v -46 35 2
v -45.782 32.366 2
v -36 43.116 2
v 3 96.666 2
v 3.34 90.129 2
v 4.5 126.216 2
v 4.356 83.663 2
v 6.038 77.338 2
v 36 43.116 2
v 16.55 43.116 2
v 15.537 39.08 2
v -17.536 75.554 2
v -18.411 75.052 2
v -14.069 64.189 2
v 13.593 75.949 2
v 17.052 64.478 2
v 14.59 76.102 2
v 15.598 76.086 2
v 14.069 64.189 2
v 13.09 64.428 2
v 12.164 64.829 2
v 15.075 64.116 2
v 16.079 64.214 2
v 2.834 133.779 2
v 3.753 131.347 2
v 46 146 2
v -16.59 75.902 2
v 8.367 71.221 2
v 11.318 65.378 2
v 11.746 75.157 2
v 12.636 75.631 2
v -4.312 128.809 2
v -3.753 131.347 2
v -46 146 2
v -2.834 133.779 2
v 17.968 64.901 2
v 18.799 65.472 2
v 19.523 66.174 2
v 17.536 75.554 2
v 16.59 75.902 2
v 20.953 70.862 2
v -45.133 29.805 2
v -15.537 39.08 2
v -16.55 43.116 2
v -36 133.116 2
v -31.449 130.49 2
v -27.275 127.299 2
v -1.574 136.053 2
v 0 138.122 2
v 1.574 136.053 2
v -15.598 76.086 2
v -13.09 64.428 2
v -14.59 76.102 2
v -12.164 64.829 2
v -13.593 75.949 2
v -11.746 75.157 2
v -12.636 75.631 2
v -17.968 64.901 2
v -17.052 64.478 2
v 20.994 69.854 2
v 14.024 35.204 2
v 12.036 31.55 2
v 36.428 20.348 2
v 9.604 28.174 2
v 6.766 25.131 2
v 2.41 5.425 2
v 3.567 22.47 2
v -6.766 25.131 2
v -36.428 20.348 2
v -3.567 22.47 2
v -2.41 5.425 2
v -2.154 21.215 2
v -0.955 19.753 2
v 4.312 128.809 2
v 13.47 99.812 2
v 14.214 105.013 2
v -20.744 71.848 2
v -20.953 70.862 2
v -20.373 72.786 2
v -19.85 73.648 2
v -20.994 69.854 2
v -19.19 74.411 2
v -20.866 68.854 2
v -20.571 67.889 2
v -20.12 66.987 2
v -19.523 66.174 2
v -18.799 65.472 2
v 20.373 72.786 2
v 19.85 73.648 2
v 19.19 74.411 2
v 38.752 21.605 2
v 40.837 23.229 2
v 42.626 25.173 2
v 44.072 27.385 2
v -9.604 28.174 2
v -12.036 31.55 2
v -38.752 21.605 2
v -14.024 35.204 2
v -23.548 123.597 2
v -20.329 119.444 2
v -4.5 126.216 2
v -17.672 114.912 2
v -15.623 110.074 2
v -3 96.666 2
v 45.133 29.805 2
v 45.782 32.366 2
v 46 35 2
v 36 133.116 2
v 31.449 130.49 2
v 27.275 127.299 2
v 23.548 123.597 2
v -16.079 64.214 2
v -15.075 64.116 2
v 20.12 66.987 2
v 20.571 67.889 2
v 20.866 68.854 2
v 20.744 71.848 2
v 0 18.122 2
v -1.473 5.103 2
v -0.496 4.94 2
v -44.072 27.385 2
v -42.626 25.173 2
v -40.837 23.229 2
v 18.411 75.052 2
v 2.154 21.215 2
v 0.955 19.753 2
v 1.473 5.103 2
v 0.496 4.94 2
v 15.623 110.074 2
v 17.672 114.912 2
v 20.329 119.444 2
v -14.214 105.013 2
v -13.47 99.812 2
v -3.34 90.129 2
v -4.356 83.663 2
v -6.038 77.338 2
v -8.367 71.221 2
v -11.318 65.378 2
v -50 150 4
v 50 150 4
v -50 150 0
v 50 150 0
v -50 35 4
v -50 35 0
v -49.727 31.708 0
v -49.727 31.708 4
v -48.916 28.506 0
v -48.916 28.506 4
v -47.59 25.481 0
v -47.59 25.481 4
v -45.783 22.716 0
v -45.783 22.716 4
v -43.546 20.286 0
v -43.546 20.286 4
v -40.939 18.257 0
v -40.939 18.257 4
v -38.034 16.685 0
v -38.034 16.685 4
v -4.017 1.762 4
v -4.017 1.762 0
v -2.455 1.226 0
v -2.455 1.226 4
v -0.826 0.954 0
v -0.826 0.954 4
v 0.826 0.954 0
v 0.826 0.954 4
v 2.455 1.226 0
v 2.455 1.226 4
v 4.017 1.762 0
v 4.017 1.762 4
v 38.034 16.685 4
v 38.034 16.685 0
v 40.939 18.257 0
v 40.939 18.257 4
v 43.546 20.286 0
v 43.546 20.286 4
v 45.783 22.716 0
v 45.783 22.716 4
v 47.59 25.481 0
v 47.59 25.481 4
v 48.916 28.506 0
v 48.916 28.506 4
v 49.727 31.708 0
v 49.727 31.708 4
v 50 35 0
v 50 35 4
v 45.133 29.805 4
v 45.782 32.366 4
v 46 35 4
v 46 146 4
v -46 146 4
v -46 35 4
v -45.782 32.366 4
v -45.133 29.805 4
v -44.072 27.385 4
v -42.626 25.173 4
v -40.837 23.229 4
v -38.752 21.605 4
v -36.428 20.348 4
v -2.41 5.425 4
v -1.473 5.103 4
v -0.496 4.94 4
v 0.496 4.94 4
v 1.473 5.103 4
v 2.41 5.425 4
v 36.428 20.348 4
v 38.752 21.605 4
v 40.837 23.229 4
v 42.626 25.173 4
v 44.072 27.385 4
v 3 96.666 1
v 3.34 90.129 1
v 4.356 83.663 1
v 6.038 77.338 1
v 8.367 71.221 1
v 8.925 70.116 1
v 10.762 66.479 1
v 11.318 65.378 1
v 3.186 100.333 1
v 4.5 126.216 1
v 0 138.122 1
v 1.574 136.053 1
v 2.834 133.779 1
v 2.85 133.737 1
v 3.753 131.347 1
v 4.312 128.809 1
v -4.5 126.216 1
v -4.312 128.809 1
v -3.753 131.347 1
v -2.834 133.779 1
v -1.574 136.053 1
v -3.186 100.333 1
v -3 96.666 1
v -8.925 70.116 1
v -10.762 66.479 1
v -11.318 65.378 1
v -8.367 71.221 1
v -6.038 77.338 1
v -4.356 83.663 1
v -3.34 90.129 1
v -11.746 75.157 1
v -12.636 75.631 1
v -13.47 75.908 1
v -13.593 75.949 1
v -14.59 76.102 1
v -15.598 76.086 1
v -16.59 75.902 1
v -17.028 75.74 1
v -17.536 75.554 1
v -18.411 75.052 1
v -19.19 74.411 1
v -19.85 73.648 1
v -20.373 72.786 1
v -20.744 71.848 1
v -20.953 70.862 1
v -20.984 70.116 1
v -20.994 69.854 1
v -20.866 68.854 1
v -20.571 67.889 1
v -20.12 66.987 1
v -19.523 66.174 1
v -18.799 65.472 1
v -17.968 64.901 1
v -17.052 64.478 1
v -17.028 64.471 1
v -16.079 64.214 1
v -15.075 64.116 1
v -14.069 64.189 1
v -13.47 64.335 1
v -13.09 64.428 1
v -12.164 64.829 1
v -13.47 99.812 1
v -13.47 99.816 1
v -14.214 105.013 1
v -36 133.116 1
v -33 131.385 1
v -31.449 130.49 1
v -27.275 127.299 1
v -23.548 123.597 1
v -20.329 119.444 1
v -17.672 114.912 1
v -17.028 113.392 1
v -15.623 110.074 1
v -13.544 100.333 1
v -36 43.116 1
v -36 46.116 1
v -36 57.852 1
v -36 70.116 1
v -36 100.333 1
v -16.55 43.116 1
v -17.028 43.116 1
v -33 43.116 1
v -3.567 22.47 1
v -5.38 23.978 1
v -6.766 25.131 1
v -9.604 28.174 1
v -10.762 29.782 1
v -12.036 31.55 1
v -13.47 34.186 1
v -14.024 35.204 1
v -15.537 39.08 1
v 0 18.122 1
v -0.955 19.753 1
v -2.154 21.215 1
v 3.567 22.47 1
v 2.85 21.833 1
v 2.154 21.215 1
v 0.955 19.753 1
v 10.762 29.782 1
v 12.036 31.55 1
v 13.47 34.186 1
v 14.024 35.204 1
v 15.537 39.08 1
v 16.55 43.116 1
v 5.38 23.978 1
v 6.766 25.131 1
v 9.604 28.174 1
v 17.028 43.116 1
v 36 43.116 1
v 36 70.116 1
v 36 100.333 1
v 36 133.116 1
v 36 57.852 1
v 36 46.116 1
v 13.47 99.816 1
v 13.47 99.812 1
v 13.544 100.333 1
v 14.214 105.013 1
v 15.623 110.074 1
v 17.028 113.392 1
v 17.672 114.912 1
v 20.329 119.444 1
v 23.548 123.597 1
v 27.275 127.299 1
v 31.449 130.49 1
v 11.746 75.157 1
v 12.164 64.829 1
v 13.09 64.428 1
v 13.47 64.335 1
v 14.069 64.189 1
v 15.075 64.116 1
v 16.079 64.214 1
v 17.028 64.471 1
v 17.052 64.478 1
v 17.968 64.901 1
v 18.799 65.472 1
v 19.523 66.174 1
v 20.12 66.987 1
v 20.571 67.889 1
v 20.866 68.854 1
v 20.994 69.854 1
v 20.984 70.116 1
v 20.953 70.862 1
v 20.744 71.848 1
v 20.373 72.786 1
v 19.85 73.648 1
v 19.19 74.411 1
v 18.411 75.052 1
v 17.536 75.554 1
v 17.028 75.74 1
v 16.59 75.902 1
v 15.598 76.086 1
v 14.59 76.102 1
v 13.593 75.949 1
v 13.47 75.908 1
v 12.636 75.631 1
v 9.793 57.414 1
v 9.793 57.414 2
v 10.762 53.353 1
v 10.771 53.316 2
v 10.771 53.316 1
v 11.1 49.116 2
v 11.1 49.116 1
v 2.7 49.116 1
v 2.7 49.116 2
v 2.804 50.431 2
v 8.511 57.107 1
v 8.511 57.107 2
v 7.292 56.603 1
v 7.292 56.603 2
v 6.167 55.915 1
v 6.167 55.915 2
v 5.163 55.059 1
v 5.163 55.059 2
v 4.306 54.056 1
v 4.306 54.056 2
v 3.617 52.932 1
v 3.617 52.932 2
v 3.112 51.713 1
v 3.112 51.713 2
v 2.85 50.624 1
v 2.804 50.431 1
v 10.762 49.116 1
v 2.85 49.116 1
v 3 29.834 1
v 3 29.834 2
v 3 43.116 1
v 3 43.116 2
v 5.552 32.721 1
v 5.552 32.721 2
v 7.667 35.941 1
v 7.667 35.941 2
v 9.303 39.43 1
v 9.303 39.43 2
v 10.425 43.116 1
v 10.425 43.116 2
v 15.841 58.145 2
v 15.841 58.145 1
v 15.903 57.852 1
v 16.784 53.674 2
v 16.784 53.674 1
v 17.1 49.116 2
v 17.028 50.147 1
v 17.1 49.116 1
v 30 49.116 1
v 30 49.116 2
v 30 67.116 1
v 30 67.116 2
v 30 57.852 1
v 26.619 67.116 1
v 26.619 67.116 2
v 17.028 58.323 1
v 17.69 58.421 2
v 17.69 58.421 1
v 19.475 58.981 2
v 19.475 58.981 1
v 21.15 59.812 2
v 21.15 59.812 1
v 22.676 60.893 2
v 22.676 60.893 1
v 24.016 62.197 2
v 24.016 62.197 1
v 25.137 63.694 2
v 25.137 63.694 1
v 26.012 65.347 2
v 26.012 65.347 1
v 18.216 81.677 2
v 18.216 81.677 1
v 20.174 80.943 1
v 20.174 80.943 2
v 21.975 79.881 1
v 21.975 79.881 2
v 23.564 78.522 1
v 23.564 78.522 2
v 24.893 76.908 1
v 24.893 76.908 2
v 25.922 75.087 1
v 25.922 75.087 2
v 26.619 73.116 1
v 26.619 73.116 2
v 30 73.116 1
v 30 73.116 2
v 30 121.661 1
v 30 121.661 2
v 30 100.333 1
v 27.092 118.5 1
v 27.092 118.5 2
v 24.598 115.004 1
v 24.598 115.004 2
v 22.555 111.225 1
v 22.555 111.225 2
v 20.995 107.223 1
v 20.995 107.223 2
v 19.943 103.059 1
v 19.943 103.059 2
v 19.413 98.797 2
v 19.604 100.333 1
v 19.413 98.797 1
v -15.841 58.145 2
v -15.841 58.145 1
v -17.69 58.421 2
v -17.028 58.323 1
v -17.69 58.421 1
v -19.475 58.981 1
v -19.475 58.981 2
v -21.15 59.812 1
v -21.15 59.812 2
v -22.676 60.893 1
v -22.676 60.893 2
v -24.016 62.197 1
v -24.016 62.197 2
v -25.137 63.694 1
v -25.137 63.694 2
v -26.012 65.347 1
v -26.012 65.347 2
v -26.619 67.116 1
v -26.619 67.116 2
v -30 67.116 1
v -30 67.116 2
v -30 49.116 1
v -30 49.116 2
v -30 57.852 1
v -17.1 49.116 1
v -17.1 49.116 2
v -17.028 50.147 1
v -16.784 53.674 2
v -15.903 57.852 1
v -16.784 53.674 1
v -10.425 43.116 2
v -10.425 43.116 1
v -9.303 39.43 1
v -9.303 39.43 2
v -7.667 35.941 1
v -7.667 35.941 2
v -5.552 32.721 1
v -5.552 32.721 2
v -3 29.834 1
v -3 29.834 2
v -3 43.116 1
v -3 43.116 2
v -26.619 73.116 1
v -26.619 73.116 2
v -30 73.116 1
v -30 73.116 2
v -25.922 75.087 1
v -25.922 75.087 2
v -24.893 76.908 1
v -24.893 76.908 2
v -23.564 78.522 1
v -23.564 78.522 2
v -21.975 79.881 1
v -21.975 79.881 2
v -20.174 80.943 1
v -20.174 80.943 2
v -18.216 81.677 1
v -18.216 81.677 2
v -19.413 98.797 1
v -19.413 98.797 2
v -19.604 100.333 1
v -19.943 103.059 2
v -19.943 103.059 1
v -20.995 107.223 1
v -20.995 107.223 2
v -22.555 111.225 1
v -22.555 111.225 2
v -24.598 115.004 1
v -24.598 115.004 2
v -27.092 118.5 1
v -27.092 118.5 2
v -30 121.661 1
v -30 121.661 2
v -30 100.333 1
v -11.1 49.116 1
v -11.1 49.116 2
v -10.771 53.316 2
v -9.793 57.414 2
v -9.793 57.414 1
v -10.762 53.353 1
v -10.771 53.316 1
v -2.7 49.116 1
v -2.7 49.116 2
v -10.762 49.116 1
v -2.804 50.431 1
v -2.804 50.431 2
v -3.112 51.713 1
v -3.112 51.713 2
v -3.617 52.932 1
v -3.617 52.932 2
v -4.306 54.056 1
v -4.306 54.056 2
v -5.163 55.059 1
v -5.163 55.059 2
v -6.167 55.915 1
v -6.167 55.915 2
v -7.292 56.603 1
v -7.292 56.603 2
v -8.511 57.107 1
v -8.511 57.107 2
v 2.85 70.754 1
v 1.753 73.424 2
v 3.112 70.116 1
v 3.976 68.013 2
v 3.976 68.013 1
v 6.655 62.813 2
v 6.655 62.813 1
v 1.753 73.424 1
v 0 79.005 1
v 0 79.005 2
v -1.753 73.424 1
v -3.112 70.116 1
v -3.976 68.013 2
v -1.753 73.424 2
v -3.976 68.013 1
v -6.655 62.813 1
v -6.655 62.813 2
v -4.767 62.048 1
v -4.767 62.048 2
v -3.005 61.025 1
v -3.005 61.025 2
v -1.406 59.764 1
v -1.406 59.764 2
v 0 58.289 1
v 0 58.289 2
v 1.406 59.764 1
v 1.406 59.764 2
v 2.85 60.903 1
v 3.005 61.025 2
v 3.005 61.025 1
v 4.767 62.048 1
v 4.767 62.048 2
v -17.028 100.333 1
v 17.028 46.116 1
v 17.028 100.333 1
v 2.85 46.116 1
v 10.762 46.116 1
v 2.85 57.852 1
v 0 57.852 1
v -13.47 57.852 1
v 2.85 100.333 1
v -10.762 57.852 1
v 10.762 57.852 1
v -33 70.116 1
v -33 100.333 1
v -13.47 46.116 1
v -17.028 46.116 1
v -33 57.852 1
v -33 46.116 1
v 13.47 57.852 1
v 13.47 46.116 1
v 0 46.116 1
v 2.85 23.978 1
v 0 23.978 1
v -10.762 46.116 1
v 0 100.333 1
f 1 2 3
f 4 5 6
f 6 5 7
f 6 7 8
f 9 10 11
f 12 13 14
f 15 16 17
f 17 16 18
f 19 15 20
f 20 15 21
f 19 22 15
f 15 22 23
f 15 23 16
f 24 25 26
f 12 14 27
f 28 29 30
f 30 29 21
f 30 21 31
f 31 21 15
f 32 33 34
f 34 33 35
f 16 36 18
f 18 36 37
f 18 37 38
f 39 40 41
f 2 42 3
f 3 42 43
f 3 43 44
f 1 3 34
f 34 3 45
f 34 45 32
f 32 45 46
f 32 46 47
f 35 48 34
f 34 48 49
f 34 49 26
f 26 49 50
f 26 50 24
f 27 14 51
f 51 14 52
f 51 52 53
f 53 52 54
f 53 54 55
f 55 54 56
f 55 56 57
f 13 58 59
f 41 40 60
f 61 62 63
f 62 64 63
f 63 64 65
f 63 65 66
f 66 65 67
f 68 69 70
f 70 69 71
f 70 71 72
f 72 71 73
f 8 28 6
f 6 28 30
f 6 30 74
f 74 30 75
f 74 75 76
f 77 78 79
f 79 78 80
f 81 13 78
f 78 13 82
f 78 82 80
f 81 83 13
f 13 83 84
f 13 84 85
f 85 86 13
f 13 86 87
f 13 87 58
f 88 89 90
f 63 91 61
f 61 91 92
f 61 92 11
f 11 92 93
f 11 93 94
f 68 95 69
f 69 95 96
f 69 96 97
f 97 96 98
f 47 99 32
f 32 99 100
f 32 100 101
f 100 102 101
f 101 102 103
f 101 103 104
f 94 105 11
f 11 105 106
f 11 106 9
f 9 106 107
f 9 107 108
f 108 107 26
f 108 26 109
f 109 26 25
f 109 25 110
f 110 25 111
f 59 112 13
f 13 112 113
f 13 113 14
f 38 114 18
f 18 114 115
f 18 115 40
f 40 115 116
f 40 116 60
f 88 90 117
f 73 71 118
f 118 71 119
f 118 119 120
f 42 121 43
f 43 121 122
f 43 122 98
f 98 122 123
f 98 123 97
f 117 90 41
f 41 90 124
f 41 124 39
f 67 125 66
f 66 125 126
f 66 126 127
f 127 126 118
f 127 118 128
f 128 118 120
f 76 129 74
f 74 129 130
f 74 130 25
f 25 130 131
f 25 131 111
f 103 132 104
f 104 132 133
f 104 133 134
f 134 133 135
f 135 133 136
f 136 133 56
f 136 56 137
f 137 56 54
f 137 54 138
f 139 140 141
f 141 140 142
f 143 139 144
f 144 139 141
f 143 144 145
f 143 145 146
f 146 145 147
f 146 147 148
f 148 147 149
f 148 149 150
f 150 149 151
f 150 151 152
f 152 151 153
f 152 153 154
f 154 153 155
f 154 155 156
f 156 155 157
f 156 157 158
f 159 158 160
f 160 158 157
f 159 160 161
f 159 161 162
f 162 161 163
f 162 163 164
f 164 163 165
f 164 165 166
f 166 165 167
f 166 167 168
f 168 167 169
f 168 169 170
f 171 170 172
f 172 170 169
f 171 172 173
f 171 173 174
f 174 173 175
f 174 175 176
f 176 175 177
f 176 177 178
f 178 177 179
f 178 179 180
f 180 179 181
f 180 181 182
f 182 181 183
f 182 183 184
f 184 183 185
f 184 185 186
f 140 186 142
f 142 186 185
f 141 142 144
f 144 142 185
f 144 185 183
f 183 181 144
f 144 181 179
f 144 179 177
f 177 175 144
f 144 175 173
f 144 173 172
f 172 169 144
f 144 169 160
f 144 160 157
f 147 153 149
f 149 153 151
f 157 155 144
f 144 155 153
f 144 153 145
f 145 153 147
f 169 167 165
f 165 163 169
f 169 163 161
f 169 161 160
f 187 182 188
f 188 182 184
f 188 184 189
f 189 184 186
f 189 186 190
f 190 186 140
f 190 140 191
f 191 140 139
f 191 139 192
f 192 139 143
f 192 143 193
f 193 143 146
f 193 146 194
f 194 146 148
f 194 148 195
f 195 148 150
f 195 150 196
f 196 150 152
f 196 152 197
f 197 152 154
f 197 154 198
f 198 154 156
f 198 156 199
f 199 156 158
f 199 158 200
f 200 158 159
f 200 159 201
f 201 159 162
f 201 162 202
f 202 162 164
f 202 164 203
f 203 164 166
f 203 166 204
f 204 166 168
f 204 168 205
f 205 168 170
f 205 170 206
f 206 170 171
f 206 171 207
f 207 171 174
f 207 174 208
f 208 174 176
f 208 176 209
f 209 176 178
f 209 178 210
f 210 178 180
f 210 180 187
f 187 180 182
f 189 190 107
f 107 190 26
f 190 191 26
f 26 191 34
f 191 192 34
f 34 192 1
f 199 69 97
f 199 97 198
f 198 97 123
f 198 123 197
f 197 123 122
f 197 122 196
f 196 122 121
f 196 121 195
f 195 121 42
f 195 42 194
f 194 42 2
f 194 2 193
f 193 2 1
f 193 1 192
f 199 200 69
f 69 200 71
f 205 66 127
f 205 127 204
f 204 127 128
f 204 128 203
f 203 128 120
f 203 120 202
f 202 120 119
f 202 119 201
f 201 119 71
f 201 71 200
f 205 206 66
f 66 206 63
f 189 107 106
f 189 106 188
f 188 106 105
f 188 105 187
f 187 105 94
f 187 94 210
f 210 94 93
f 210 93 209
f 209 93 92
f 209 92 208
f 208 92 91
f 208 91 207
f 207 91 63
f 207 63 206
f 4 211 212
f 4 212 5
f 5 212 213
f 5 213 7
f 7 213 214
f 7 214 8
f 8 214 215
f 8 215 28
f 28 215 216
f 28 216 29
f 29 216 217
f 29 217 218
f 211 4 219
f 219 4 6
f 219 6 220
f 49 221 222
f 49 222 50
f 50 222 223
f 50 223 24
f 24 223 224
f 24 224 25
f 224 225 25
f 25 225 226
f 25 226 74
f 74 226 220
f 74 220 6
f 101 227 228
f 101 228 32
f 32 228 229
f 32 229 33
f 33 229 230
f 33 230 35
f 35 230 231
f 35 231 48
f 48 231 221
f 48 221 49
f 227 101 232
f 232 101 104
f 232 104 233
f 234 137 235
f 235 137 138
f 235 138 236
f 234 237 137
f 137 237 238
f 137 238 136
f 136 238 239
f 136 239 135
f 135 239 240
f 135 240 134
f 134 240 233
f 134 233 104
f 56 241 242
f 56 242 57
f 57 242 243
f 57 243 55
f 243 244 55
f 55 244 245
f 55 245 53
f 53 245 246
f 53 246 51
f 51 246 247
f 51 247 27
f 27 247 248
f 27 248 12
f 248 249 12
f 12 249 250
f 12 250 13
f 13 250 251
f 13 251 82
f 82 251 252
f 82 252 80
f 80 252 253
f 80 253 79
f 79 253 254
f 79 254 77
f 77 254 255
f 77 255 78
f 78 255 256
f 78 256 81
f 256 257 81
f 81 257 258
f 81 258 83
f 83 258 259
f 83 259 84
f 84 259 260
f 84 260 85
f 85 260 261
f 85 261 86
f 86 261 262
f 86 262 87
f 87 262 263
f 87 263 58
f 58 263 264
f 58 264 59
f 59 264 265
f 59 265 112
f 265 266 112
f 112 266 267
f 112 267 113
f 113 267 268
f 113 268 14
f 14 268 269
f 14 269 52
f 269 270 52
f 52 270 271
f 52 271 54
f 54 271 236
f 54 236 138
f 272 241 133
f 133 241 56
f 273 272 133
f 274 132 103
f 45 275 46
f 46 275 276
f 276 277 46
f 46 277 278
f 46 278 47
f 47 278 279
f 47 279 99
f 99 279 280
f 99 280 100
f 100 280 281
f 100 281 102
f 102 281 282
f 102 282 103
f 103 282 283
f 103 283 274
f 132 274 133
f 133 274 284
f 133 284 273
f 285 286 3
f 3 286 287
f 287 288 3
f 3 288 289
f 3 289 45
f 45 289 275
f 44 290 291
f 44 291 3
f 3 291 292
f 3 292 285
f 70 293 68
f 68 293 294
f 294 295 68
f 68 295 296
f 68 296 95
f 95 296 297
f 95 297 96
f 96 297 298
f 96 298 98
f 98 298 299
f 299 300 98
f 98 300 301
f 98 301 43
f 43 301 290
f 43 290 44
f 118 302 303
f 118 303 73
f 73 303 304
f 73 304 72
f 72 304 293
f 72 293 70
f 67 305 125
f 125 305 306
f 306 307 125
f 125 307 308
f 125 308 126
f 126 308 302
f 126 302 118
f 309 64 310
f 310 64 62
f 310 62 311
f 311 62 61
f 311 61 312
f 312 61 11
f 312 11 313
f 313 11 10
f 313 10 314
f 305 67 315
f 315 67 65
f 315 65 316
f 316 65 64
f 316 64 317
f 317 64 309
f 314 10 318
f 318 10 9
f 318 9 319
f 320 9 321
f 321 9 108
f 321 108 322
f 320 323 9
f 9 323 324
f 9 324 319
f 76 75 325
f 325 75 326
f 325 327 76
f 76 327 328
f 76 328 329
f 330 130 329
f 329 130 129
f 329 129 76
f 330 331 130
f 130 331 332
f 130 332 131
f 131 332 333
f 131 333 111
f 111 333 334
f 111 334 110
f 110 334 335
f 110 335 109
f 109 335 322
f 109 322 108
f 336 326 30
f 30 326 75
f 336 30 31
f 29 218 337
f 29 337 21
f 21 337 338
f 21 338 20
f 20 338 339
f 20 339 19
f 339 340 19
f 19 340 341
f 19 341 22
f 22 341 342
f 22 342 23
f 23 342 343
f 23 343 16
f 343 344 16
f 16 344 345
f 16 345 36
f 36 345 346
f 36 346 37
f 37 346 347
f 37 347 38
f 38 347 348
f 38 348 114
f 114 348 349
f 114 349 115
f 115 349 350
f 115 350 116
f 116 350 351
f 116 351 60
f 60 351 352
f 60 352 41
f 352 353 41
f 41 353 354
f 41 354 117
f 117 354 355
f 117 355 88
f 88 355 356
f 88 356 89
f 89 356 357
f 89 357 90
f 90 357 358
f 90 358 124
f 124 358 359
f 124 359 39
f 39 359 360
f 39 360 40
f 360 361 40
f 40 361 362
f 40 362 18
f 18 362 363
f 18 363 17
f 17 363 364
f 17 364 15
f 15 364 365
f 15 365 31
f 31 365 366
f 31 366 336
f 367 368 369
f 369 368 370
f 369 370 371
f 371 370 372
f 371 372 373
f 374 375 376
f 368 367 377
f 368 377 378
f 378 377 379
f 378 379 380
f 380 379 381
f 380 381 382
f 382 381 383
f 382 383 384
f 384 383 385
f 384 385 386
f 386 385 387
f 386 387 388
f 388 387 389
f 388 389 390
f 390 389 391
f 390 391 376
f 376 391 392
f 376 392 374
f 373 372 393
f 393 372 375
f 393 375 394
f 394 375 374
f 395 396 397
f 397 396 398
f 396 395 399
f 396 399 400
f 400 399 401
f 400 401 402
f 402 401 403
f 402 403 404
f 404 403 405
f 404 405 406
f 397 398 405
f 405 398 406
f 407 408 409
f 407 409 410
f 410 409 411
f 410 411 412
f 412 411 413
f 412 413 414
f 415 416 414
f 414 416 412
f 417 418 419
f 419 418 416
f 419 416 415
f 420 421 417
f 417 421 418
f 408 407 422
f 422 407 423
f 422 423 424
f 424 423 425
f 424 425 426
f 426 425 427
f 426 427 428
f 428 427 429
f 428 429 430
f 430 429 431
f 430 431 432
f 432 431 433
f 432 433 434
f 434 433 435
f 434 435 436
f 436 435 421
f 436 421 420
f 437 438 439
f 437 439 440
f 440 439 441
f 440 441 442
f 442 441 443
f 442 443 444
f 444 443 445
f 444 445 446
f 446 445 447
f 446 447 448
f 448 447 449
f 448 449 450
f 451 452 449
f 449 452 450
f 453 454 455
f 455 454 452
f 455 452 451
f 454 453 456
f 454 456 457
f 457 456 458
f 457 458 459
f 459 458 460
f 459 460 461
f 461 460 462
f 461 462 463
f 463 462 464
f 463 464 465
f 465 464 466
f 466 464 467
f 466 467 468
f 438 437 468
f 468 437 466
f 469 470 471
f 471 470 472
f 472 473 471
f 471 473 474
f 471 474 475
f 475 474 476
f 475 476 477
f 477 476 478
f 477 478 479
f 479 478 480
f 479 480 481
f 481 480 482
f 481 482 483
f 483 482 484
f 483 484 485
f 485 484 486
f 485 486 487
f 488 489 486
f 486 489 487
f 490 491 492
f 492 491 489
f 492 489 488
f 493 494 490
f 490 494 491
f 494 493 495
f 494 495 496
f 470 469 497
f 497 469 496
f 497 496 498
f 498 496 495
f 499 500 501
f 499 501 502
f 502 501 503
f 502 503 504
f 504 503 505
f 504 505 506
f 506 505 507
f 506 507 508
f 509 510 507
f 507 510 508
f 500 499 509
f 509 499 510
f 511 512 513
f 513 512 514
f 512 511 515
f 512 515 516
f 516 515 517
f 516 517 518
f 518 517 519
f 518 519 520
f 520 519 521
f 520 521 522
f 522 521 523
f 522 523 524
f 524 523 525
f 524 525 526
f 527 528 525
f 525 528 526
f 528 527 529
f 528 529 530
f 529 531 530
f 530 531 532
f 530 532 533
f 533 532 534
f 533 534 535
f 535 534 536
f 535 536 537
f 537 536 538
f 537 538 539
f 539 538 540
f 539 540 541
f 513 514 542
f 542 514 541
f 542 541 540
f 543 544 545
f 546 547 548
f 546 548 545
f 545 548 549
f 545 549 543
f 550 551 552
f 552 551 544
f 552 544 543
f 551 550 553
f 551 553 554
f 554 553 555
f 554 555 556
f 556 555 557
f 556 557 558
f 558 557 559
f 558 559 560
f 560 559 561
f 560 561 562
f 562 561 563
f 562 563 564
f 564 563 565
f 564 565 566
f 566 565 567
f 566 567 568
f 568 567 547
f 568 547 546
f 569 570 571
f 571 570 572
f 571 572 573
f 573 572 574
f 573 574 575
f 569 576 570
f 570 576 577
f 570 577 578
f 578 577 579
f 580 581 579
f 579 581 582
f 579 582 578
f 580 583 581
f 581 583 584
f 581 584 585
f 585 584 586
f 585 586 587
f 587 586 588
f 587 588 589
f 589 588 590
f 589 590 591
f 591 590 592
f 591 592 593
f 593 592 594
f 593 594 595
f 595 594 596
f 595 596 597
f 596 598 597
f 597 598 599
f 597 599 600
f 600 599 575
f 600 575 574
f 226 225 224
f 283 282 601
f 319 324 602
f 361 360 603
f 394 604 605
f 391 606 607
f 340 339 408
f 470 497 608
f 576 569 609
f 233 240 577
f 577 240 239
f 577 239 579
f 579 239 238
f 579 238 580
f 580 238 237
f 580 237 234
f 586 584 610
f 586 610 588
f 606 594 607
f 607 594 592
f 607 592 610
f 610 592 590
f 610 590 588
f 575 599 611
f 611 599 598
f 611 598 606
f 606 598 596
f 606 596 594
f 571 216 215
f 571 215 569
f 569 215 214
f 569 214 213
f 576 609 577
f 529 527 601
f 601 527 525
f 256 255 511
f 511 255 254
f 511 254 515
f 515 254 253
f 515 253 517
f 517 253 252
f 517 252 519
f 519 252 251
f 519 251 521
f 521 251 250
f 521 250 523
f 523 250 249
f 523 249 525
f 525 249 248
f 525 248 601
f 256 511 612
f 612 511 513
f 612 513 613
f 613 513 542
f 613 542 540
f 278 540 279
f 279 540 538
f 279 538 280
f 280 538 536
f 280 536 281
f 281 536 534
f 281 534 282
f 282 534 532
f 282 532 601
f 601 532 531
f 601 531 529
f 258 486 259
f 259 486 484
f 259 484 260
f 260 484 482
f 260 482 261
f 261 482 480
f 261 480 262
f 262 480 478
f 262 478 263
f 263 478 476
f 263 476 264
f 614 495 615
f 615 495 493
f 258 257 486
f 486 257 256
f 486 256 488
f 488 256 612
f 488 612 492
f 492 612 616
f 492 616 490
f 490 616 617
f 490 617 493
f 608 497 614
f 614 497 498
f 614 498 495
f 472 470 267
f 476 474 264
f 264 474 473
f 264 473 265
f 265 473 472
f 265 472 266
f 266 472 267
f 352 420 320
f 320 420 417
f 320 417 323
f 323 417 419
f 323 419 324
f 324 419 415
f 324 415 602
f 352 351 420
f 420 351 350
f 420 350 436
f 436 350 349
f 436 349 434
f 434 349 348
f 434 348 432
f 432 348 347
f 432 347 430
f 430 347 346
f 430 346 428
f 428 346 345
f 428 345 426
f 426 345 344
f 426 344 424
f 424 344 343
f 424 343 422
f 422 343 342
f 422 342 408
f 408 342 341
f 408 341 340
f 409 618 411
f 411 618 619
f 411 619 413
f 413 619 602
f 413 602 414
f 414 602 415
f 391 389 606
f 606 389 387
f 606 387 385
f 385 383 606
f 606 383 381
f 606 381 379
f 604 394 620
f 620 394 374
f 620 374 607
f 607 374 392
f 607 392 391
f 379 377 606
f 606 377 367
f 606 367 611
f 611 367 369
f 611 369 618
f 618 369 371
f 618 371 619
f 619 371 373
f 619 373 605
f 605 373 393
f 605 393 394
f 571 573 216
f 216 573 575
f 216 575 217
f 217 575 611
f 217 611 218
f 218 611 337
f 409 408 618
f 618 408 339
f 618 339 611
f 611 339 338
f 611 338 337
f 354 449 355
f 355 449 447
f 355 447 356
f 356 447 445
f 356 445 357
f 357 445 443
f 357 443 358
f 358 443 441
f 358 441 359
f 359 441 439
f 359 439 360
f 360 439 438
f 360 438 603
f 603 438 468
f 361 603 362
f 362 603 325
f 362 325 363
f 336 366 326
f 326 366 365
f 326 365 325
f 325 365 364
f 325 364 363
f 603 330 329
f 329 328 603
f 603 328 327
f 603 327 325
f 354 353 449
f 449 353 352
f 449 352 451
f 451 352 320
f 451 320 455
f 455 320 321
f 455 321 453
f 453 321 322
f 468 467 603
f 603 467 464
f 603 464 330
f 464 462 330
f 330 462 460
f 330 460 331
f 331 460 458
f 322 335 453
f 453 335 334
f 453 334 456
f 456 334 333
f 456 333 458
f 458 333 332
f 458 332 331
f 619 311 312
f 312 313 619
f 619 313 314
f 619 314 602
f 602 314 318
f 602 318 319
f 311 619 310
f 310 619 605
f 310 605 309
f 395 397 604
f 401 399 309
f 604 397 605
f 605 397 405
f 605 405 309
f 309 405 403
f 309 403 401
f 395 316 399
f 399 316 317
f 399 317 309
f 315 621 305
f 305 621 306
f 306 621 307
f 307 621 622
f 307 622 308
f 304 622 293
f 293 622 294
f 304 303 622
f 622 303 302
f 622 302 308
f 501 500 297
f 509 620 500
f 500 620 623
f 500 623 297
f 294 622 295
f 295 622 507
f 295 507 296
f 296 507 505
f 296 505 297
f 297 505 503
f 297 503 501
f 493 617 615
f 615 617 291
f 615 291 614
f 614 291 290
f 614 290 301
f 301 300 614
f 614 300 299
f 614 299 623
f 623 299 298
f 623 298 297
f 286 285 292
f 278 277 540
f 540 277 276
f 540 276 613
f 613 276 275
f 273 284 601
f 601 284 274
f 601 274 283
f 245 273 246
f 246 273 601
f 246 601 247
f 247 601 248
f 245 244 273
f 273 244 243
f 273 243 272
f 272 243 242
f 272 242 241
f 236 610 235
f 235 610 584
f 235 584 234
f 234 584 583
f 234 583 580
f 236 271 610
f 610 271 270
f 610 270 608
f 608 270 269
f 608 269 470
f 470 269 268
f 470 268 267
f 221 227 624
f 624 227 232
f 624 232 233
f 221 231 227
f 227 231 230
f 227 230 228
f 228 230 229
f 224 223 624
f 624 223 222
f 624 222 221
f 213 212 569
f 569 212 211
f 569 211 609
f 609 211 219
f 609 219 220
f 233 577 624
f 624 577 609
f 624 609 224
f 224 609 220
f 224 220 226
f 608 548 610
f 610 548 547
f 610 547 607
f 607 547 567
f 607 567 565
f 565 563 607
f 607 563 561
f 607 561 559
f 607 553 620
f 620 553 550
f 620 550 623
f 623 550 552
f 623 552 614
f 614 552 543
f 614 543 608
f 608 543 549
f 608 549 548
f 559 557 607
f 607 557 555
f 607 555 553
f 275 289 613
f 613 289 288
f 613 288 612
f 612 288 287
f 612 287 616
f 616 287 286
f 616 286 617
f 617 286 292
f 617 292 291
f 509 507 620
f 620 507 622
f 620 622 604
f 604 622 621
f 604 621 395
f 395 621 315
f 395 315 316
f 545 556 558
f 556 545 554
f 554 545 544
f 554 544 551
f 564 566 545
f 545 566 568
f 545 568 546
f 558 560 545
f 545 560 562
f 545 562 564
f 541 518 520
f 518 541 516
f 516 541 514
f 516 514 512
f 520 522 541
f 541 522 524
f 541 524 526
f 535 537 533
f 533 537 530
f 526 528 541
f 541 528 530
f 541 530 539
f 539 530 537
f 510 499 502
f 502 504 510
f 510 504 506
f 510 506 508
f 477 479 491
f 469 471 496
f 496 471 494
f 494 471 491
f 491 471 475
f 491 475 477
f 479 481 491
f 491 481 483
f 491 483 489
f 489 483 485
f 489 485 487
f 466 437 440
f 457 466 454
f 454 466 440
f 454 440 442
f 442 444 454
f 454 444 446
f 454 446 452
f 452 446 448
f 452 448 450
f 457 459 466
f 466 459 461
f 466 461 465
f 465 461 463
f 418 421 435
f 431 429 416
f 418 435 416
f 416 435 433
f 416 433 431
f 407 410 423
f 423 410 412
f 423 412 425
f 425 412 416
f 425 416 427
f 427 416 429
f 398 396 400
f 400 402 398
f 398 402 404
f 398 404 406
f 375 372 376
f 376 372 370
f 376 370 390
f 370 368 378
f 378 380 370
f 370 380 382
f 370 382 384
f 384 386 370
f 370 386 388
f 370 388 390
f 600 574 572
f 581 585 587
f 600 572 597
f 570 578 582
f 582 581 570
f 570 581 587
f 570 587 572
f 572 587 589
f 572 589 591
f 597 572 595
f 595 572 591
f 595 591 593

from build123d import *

# Parameters (mm, degrees)
EXTRUDE_1_DEPTH = 2
EXTRUDE_2_DEPTH = 2
OTHER_START     = 1
OTHER_1_DEPTH   = 1


# Read off the part's stored shape, not the designer's step: Полость1
with BuildPart() as part:
    # Эскиз1 → Бобышка-Вытянуть1 (new body)
    with BuildSketch(Plane.XY):
        with BuildLine():
            Line((-4.017219652, 1.762254744), (-38.034439304, 16.684766311))
            ThreePointArc((-38.034439304, 16.684766311), (-46.743488079, 24.061279464), (-50, 35))
            Line((-50, 35), (-50, 150))
            Line((-50, 150), (50, 150))
            Line((50, 150), (50, 35))
            ThreePointArc((50, 35), (46.743488079, 24.061279464), (38.034439304, 16.684766311))
            Line((38.034439304, 16.684766311), (4.017219652, 1.762254744))
            ThreePointArc((4.017219652, 1.762254744), (0, 0.919871589), (-4.017219652, 1.762254744))
        make_face()
    extrude(amount=EXTRUDE_1_DEPTH)

    # Эскиз2 → Бобышка-Вытянуть2 (add)
    with BuildSketch(Plane.XY.offset(2)):
        with BuildLine():
            Line((50, 150), (-50, 150))
            Line((-50, 150), (-50, 35))
            ThreePointArc((-50, 35), (-46.743488079, 24.061279464), (-38.034439304, 16.684766311))
            Line((-38.034439304, 16.684766311), (-4.017219652, 1.762254744))
            ThreePointArc((-4.017219652, 1.762254744), (0, 0.919871589), (4.017219652, 1.762254744))
            Line((4.017219652, 1.762254744), (38.034439304, 16.684766311))
            ThreePointArc((38.034439304, 16.684766311), (46.743488079, 24.061279464), (50, 35))
            Line((50, 35), (50, 150))
        make_face()
        with BuildLine():
            Line((46, 146), (-46, 146))
            Line((-46, 146), (-46, 35))
            ThreePointArc((-46, 35), (-43.394790463, 26.249023571), (-36.427551443, 20.347813049))
            Line((-36.427551443, 20.347813049), (-2.410331791, 5.425301482))
            ThreePointArc((-2.410331791, 5.425301482), (0, 4.919871589), (2.410331791, 5.425301482))
            Line((2.410331791, 5.425301482), (36.427551443, 20.347813049))
            ThreePointArc((36.427551443, 20.347813049), (43.394790463, 26.249023571), (46, 35))
            Line((46, 35), (46, 146))
        make_face(mode=Mode.SUBTRACT)
    extrude(amount=EXTRUDE_2_DEPTH)

    # Полость1 outline → Полость1 (cut)
    with BuildSketch(Plane.XY.offset(OTHER_START)):
        with BuildLine():
            ThreePointArc((11.745635367, 75.156774095), (20.994280281, 69.854105541), (11.31836185, 65.378356547))
            ThreePointArc((11.31836185, 65.378356547), (5.115095453, 80.478737769), (3, 96.666029027))
            Line((3, 96.666029027), (4.5, 126.216029027))
            ThreePointArc((4.5, 126.216029027), (3.337458241, 132.579990058), (0, 138.121909927))
            ThreePointArc((0, 138.121909927), (-3.33745824, 132.579990058), (-4.5, 126.216029027))
            Line((-4.5, 126.216029027), (-3, 96.666029027))
            ThreePointArc((-3, 96.666029027), (-5.115095453, 80.478737769), (-11.31836185, 65.378356547))
            ThreePointArc((-11.31836185, 65.378356547), (-20.994280281, 69.854105541), (-11.745635367, 75.156774095))
            Line((-11.745635367, 75.156774095), (-13.469683479, 99.811810763))
            ThreePointArc((-13.469683479, 99.811810763), (-20.328911117, 119.444533663), (-36, 133.116029027))
            Line((-36, 133.116029027), (-36, 43.116029027))
            Line((-36, 43.116029027), (-16.549961479, 43.116029027))
            ThreePointArc((-16.549961479, 43.116029027), (-12.036010614, 31.549603352), (-3.567460781, 22.469866625))
            ThreePointArc((-3.567460781, 22.469866625), (-1.525407448, 20.507840011), (0, 18.121909927))
            ThreePointArc((0, 18.121909927), (1.525407448, 20.507840011), (3.567460781, 22.469866625))
            ThreePointArc((3.567460781, 22.469866625), (12.036010614, 31.549603352), (16.549961479, 43.116029027))
            Line((16.549961479, 43.116029027), (36, 43.116029027))
            Line((36, 43.116029027), (36, 133.116029027))
            ThreePointArc((36, 133.116029027), (20.328911117, 119.444533663), (13.469683479, 99.811810763))
            Line((13.469683479, 99.811810763), (11.745635367, 75.156774095))
        make_face()
        with BuildLine():
            ThreePointArc((-3, 29.83417227), (-7.667449376, 35.941229982), (-10.424893162, 43.116029027))
            Line((-10.424893162, 43.116029027), (-3, 43.116029027))
            Line((-3, 43.116029027), (-3, 29.83417227))
        make_face(mode=Mode.SUBTRACT)
        with BuildLine():
            ThreePointArc((-15.840643779, 58.145510324), (-16.78364457, 53.674469292), (-17.1, 49.116029027))
            Line((-17.1, 49.116029027), (-30, 49.116029027))
            Line((-30, 49.116029027), (-30, 67.116029027))
            Line((-30, 67.116029027), (-26.618950039, 67.116029027))
            ThreePointArc((-26.618950039, 67.116029027), (-22.676452369, 60.892576365), (-15.840643779, 58.145510324))
        make_face(mode=Mode.SUBTRACT)
        with BuildLine():
            ThreePointArc((-9.793333333, 57.413777048), (-4.715017619, 54.57423386), (-2.7, 49.116029027))
            Line((-2.7, 49.116029027), (-11.1, 49.116029027))
            ThreePointArc((-11.1, 49.116029027), (-10.771332925, 53.316029027), (-9.793333333, 57.413777048))
        make_face(mode=Mode.SUBTRACT)
        with BuildLine():
            Line((3, 29.83417227), (3, 43.116029027))
            Line((3, 43.116029027), (10.424893162, 43.116029027))
            ThreePointArc((10.424893162, 43.116029027), (7.667449376, 35.941229982), (3, 29.83417227))
        make_face(mode=Mode.SUBTRACT)
        with BuildLine():
            ThreePointArc((2.7, 49.116029027), (4.715017619, 54.57423386), (9.793333333, 57.413777048))
            ThreePointArc((9.793333333, 57.413777048), (10.771332925, 53.316029027), (11.1, 49.116029027))
            Line((11.1, 49.116029027), (2.7, 49.116029027))
        make_face(mode=Mode.SUBTRACT)
        with BuildLine():
            ThreePointArc((0, 79.005460407), (2.806605948, 70.695071551), (6.654810678, 62.812754617))
            ThreePointArc((6.654810678, 62.812754617), (3.005032266, 61.025332003), (0, 58.289359938))
            ThreePointArc((0, 58.289359938), (-3.005032266, 61.025332003), (-6.654810678, 62.812754617))
            ThreePointArc((-6.654810678, 62.812754617), (-2.806605948, 70.695071551), (0, 79.005460407))
        make_face(mode=Mode.SUBTRACT)
        with BuildLine():
            ThreePointArc((17.1, 49.116029027), (16.78364457, 53.674469292), (15.840643779, 58.145510324))
            ThreePointArc((15.840643779, 58.145510324), (22.676452369, 60.892576365), (26.618950039, 67.116029027))
            Line((26.618950039, 67.116029027), (30, 67.116029027))
            Line((30, 67.116029027), (30, 49.116029027))
            Line((30, 49.116029027), (17.1, 49.116029027))
        make_face(mode=Mode.SUBTRACT)
        with BuildLine():
            ThreePointArc((-18.216224905, 81.676993406), (-23.564060467, 78.521793021), (-26.618950039, 73.116029027))
            Line((-26.618950039, 73.116029027), (-30, 73.116029027))
            Line((-30, 73.116029027), (-30, 121.661547275))
            ThreePointArc((-30, 121.661547275), (-22.554855421, 111.225521288), (-19.413361995, 98.796851397))
            Line((-19.413361995, 98.796851397), (-18.216224905, 81.676993406))
        make_face(mode=Mode.SUBTRACT)
        with BuildLine():
            ThreePointArc((19.413361995, 98.796851397), (22.554855421, 111.225521288), (30, 121.661547275))
            Line((30, 121.661547275), (30, 73.116029027))
            Line((30, 73.116029027), (26.618950039, 73.116029027))
            ThreePointArc((26.618950039, 73.116029027), (23.564060467, 78.521793021), (18.216224905, 81.676993406))
            Line((18.216224905, 81.676993406), (19.413361995, 98.796851397))
        make_face(mode=Mode.SUBTRACT)
    extrude(amount=OTHER_1_DEPTH, mode=Mode.SUBTRACT)


solid = part.part
